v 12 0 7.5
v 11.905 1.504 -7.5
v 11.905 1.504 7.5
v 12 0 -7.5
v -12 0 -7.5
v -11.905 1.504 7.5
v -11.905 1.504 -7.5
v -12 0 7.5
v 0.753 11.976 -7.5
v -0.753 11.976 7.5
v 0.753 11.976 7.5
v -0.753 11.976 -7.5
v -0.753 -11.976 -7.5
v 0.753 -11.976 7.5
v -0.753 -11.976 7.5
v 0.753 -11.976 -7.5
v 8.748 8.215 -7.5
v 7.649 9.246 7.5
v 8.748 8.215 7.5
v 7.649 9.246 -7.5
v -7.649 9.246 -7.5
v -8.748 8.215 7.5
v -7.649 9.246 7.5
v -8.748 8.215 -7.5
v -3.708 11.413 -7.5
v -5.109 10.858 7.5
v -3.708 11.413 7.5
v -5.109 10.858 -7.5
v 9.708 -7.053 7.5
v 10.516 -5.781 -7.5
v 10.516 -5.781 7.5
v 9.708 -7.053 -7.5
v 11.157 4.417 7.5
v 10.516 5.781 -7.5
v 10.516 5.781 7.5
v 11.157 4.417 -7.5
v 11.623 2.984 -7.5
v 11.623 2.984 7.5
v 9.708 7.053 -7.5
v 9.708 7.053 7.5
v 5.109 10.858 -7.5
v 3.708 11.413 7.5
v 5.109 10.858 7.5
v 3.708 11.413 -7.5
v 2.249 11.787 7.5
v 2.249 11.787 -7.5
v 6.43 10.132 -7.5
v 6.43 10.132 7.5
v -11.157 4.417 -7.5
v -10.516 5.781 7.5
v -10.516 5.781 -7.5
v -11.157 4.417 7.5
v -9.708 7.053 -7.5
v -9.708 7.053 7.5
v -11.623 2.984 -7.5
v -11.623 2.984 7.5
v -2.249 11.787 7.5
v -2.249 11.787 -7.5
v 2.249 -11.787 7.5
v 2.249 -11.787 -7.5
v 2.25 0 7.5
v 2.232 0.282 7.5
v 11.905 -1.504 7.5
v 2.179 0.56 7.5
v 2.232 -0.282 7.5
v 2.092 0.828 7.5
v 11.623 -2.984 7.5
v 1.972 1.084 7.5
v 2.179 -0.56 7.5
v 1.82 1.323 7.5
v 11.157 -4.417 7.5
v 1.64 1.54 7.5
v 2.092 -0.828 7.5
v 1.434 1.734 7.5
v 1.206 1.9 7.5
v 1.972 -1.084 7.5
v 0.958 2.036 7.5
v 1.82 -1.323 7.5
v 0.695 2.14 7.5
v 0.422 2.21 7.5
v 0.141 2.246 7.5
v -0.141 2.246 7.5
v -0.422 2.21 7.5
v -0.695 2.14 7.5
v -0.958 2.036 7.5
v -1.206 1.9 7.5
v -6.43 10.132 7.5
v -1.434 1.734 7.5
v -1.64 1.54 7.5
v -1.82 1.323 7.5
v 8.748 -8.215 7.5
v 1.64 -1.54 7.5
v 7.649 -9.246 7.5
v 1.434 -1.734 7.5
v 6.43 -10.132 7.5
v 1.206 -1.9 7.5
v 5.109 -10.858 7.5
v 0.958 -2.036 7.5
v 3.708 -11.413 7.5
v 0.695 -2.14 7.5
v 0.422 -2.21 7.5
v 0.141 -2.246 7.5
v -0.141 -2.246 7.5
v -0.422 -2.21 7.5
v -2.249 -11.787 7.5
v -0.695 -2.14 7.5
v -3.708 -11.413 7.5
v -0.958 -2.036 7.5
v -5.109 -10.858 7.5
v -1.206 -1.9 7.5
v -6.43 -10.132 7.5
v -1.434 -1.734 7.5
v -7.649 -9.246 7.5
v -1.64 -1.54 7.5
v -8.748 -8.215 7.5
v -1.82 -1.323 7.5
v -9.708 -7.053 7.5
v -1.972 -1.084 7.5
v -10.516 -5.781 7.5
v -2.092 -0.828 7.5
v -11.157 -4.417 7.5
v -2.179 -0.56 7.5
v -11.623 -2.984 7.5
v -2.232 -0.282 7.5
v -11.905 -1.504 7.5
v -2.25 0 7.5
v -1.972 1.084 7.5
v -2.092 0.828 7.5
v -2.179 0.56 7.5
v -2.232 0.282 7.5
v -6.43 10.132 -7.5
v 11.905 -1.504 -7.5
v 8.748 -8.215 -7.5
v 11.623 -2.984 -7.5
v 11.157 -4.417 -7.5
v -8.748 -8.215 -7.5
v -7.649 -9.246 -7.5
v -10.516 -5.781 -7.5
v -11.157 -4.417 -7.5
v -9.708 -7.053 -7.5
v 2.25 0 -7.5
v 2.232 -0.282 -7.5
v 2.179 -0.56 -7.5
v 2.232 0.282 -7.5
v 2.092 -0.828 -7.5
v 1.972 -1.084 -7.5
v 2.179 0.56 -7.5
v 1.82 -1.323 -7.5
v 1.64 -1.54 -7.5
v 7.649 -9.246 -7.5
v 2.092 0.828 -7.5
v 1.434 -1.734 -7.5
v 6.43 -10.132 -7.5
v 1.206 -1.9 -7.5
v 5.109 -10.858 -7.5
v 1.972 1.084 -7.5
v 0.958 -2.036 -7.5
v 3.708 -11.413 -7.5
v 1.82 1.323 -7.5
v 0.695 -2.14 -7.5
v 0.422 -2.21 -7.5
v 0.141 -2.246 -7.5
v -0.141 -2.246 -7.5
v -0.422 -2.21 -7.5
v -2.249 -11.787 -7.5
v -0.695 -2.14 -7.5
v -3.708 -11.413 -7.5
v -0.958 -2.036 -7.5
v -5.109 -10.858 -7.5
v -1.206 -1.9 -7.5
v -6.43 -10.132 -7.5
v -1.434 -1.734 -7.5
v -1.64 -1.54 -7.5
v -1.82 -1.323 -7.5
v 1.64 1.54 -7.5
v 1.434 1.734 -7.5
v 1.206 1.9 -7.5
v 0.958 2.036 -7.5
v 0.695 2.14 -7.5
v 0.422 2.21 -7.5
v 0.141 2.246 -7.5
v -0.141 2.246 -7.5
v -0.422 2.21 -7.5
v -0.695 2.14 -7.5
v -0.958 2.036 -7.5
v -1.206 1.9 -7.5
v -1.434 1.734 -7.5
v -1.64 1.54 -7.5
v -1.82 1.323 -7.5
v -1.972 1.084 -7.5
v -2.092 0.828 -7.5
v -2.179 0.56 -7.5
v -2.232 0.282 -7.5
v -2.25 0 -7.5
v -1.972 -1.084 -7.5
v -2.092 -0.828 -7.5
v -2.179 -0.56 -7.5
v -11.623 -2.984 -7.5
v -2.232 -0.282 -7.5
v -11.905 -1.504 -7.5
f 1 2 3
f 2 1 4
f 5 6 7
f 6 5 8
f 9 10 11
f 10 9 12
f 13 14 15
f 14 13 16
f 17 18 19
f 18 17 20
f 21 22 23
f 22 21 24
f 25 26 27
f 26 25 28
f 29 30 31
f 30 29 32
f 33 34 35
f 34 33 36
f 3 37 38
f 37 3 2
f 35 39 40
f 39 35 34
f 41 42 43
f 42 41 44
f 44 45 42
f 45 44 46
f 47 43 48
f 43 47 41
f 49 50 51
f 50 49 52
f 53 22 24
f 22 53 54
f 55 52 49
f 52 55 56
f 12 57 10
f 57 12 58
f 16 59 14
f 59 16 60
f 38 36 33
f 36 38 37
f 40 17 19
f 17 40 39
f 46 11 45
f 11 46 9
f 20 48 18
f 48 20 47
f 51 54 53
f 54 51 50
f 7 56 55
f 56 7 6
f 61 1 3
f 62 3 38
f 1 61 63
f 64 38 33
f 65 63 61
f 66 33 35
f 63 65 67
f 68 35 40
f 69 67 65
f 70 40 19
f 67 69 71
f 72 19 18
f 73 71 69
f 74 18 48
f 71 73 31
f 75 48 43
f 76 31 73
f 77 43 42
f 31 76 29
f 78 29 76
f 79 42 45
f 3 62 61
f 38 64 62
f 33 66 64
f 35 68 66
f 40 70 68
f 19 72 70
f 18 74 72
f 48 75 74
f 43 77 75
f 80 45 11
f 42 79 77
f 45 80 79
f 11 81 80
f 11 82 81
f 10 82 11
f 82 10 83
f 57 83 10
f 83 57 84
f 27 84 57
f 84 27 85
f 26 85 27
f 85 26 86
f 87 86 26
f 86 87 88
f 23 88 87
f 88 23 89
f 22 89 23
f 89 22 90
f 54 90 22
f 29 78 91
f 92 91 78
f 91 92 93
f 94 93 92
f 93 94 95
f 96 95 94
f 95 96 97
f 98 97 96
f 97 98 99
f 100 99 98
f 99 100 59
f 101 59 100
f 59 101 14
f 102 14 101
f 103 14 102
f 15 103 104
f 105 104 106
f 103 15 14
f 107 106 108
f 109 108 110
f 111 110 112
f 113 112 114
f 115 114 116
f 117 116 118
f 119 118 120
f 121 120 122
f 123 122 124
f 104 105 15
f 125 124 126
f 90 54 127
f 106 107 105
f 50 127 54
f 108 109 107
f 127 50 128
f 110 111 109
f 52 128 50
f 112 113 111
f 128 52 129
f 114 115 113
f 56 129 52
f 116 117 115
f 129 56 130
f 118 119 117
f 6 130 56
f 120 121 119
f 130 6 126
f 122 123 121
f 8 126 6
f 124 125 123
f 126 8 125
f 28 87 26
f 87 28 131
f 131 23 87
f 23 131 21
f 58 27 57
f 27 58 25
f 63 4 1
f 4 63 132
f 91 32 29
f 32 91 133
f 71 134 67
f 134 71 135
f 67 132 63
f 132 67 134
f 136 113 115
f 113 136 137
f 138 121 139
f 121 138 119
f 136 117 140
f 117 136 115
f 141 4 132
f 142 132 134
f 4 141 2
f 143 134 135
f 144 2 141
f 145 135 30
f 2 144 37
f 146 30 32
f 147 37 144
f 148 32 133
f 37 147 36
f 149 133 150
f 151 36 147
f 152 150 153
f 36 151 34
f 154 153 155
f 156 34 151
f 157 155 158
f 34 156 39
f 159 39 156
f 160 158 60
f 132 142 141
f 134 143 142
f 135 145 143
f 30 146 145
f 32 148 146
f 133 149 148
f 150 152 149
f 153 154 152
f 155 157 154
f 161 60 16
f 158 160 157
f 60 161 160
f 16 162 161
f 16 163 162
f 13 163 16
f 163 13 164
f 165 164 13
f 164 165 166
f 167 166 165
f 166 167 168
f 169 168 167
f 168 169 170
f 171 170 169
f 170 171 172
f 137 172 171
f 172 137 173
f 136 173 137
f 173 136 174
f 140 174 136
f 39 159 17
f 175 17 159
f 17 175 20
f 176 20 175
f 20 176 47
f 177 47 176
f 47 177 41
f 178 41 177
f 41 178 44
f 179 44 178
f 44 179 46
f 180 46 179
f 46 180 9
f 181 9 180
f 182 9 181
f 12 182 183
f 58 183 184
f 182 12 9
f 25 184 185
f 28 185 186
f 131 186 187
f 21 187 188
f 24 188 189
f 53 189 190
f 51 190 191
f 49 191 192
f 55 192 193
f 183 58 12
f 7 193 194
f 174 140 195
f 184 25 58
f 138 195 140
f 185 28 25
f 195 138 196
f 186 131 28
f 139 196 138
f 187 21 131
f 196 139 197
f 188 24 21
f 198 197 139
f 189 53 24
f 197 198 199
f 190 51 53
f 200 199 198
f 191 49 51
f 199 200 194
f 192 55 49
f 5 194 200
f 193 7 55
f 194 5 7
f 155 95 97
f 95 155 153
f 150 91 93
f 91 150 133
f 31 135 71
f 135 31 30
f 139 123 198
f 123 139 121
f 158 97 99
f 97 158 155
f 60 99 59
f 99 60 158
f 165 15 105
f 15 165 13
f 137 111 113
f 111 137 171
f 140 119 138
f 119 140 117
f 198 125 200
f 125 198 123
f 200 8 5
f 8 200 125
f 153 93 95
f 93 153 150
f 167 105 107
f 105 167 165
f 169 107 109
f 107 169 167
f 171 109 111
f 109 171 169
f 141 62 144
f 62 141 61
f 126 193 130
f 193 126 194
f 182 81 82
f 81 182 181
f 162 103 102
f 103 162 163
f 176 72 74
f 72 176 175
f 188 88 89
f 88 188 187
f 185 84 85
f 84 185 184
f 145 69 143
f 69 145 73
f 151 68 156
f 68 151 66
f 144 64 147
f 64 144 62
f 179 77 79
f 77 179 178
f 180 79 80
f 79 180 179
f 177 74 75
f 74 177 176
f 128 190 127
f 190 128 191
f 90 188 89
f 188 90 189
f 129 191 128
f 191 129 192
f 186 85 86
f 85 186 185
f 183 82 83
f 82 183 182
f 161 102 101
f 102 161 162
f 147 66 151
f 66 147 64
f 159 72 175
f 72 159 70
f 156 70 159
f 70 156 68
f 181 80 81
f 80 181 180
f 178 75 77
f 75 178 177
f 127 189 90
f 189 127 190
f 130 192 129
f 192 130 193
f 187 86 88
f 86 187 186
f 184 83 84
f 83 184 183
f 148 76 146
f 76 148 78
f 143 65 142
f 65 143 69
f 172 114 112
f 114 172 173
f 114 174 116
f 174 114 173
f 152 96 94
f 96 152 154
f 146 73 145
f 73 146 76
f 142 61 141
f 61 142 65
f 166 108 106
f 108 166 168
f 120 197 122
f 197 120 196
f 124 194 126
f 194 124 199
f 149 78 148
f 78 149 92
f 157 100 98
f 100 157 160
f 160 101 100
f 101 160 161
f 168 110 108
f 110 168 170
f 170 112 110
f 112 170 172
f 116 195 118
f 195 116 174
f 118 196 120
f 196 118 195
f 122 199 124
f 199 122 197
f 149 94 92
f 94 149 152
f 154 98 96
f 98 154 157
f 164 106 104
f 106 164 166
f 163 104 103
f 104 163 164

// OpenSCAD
$fn = 50;


difference() {
	union() {
		translate(v = [0, 0, -7.5000000000]) {
			cylinder(h = 15, r = 12.0000000000);
		}
	}
	union() {
		translate(v = [0, 0, -100.0000000000]) {
			cylinder(h = 200, r = 2.2500000000);
		}
	}
}
